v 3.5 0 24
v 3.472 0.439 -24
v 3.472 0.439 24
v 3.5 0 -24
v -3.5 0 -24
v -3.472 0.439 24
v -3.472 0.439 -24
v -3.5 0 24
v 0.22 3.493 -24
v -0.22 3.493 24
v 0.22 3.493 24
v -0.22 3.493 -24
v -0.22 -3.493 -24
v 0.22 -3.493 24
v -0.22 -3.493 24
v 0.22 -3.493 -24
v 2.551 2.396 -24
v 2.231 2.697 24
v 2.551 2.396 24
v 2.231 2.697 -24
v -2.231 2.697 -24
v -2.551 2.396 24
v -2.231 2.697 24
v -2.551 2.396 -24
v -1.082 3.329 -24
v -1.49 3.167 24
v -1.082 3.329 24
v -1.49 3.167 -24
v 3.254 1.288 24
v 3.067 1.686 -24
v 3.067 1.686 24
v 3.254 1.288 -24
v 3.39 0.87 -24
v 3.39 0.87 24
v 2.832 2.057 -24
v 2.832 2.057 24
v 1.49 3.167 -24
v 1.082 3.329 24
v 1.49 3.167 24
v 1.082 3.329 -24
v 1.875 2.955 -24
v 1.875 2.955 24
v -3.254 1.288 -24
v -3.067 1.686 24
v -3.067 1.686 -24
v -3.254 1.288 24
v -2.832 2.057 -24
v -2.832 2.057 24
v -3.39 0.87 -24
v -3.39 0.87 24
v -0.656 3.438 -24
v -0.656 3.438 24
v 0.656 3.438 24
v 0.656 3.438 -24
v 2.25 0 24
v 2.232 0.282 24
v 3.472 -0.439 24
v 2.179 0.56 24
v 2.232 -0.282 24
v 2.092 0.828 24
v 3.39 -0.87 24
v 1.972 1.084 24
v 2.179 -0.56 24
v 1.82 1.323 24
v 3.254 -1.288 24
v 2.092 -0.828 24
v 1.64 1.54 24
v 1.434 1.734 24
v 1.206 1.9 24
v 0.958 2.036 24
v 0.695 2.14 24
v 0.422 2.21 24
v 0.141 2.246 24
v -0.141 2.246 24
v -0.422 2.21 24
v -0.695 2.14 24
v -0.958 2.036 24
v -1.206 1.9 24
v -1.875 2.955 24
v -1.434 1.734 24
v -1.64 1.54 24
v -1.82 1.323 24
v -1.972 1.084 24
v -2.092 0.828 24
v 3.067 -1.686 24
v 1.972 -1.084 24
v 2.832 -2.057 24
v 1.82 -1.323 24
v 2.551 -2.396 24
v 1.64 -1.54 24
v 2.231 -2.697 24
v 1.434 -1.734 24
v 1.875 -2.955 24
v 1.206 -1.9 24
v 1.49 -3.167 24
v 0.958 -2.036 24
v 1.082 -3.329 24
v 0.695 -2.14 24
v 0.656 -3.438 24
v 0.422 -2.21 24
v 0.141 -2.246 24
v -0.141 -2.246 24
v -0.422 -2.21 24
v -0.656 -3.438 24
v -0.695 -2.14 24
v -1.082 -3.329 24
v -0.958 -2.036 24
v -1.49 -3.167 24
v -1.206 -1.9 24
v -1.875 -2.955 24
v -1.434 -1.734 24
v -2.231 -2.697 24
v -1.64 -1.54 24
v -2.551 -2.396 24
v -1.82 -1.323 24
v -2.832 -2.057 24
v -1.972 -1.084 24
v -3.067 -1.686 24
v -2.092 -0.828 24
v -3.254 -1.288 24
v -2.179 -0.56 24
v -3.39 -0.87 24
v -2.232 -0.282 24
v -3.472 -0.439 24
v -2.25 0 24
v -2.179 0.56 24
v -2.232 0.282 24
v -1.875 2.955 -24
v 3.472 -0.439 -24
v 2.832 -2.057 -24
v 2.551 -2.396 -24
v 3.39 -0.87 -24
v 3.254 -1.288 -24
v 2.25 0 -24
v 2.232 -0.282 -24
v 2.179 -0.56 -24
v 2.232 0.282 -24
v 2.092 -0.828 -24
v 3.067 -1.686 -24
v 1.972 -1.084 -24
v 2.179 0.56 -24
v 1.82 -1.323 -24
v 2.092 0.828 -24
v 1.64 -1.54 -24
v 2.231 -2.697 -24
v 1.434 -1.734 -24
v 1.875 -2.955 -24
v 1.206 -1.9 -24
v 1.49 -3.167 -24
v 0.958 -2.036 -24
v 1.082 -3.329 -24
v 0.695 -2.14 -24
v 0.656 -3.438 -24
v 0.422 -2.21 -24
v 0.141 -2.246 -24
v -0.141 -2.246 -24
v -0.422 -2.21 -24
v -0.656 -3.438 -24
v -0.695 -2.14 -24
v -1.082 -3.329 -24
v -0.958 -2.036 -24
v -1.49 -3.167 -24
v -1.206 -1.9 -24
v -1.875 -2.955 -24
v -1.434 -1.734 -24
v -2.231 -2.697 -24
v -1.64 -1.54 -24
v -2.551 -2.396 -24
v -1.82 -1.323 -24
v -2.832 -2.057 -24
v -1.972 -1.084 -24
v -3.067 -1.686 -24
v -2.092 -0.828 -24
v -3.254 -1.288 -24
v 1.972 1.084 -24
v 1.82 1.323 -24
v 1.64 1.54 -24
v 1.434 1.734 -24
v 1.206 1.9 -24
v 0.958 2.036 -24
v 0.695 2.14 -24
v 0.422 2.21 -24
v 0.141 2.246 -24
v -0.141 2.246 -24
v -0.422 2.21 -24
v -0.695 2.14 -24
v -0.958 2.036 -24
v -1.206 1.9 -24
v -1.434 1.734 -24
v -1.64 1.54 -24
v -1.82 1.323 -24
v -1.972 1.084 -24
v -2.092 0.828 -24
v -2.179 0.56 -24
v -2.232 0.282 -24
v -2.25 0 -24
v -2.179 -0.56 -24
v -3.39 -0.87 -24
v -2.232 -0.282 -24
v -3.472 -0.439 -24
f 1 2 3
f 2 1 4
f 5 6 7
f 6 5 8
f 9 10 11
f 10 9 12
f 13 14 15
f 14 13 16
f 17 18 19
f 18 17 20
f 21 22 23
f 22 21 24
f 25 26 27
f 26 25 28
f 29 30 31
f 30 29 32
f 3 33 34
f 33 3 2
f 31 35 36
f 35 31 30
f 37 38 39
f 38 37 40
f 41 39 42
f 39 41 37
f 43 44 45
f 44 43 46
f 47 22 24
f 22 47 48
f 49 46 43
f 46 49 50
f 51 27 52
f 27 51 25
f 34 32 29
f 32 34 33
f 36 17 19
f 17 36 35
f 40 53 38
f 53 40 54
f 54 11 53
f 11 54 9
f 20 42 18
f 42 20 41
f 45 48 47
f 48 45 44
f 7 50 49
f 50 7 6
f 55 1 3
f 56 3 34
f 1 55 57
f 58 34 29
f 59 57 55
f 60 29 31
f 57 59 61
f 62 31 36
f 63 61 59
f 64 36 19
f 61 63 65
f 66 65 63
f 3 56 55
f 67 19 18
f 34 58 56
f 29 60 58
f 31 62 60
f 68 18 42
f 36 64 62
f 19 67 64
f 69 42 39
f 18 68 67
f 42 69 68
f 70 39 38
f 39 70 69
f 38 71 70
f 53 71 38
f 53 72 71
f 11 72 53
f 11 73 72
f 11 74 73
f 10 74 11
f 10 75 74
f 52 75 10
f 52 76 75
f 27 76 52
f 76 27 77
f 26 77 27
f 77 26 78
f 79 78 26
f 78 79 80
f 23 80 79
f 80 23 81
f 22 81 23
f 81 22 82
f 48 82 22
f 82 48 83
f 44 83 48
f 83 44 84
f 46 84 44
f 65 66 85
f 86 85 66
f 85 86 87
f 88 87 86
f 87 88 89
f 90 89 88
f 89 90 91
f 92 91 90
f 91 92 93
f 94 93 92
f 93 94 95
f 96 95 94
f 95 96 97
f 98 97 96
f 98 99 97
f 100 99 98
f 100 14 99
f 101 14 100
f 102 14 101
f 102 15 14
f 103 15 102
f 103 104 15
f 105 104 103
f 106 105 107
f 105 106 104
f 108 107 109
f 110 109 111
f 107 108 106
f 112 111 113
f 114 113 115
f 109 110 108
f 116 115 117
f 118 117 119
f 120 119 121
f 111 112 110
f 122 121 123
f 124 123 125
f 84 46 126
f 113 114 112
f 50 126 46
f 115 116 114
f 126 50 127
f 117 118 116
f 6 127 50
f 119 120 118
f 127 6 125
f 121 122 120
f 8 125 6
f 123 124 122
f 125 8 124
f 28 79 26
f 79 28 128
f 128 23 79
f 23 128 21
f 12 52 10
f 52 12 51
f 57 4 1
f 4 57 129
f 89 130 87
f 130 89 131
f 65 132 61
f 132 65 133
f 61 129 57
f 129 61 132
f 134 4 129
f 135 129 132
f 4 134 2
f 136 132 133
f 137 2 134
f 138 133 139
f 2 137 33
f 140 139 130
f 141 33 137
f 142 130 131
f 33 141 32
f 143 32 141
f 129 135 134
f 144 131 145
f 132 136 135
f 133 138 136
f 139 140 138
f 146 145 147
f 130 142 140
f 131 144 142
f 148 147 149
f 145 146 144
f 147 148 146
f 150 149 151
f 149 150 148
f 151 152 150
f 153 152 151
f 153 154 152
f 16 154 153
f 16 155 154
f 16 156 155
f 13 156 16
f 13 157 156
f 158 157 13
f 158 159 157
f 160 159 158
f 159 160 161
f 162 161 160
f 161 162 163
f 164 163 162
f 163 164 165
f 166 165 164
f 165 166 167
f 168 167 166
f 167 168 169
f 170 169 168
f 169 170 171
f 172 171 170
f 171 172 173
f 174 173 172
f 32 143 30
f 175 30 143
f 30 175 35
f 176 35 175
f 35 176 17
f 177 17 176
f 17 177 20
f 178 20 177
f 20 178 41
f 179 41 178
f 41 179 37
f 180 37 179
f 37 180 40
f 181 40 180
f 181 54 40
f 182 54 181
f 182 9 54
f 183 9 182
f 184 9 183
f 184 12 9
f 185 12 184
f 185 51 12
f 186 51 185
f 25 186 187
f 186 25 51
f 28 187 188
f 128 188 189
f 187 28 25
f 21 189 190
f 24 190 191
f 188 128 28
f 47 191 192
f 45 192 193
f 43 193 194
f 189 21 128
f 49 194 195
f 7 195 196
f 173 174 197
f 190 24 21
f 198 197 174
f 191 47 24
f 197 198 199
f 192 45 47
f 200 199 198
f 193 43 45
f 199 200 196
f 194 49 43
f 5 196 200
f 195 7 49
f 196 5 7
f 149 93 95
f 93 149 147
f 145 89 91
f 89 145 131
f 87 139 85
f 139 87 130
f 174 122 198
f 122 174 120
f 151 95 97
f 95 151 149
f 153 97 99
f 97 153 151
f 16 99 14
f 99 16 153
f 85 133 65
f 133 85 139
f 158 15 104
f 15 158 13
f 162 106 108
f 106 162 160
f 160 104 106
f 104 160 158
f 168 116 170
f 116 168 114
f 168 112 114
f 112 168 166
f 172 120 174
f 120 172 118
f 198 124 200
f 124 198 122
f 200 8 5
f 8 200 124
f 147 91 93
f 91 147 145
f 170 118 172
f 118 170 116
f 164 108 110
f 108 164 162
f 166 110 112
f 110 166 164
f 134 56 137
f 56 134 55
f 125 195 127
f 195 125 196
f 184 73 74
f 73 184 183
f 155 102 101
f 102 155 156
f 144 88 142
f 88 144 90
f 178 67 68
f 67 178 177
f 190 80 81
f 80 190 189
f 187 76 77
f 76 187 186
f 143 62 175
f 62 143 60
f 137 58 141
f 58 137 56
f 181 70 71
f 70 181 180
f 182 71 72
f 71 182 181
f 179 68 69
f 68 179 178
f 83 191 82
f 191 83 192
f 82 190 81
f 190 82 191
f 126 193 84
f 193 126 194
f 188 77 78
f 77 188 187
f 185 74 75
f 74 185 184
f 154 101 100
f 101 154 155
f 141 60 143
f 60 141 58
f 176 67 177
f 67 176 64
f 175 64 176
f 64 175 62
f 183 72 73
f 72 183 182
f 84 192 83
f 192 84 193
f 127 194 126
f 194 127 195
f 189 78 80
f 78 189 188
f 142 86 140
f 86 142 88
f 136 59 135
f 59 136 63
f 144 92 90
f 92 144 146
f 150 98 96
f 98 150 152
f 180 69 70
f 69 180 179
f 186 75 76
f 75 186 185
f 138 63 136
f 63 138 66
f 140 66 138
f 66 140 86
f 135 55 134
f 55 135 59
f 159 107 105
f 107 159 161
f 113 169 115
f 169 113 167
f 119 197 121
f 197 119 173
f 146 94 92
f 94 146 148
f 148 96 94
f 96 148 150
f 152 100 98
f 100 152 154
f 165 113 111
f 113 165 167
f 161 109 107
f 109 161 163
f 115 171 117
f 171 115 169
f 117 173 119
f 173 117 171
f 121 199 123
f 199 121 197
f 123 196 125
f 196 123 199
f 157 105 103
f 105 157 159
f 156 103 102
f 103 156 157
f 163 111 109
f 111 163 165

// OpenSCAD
$fn = 50;


difference() {
	union() {
		translate(v = [0, 0, -24.0000000000]) {
			cylinder(h = 48, r = 3.5000000000);
		}
	}
	union() {
		translate(v = [0, 0, -100.0000000000]) {
			cylinder(h = 200, r = 2.2500000000);
		}
	}
}
